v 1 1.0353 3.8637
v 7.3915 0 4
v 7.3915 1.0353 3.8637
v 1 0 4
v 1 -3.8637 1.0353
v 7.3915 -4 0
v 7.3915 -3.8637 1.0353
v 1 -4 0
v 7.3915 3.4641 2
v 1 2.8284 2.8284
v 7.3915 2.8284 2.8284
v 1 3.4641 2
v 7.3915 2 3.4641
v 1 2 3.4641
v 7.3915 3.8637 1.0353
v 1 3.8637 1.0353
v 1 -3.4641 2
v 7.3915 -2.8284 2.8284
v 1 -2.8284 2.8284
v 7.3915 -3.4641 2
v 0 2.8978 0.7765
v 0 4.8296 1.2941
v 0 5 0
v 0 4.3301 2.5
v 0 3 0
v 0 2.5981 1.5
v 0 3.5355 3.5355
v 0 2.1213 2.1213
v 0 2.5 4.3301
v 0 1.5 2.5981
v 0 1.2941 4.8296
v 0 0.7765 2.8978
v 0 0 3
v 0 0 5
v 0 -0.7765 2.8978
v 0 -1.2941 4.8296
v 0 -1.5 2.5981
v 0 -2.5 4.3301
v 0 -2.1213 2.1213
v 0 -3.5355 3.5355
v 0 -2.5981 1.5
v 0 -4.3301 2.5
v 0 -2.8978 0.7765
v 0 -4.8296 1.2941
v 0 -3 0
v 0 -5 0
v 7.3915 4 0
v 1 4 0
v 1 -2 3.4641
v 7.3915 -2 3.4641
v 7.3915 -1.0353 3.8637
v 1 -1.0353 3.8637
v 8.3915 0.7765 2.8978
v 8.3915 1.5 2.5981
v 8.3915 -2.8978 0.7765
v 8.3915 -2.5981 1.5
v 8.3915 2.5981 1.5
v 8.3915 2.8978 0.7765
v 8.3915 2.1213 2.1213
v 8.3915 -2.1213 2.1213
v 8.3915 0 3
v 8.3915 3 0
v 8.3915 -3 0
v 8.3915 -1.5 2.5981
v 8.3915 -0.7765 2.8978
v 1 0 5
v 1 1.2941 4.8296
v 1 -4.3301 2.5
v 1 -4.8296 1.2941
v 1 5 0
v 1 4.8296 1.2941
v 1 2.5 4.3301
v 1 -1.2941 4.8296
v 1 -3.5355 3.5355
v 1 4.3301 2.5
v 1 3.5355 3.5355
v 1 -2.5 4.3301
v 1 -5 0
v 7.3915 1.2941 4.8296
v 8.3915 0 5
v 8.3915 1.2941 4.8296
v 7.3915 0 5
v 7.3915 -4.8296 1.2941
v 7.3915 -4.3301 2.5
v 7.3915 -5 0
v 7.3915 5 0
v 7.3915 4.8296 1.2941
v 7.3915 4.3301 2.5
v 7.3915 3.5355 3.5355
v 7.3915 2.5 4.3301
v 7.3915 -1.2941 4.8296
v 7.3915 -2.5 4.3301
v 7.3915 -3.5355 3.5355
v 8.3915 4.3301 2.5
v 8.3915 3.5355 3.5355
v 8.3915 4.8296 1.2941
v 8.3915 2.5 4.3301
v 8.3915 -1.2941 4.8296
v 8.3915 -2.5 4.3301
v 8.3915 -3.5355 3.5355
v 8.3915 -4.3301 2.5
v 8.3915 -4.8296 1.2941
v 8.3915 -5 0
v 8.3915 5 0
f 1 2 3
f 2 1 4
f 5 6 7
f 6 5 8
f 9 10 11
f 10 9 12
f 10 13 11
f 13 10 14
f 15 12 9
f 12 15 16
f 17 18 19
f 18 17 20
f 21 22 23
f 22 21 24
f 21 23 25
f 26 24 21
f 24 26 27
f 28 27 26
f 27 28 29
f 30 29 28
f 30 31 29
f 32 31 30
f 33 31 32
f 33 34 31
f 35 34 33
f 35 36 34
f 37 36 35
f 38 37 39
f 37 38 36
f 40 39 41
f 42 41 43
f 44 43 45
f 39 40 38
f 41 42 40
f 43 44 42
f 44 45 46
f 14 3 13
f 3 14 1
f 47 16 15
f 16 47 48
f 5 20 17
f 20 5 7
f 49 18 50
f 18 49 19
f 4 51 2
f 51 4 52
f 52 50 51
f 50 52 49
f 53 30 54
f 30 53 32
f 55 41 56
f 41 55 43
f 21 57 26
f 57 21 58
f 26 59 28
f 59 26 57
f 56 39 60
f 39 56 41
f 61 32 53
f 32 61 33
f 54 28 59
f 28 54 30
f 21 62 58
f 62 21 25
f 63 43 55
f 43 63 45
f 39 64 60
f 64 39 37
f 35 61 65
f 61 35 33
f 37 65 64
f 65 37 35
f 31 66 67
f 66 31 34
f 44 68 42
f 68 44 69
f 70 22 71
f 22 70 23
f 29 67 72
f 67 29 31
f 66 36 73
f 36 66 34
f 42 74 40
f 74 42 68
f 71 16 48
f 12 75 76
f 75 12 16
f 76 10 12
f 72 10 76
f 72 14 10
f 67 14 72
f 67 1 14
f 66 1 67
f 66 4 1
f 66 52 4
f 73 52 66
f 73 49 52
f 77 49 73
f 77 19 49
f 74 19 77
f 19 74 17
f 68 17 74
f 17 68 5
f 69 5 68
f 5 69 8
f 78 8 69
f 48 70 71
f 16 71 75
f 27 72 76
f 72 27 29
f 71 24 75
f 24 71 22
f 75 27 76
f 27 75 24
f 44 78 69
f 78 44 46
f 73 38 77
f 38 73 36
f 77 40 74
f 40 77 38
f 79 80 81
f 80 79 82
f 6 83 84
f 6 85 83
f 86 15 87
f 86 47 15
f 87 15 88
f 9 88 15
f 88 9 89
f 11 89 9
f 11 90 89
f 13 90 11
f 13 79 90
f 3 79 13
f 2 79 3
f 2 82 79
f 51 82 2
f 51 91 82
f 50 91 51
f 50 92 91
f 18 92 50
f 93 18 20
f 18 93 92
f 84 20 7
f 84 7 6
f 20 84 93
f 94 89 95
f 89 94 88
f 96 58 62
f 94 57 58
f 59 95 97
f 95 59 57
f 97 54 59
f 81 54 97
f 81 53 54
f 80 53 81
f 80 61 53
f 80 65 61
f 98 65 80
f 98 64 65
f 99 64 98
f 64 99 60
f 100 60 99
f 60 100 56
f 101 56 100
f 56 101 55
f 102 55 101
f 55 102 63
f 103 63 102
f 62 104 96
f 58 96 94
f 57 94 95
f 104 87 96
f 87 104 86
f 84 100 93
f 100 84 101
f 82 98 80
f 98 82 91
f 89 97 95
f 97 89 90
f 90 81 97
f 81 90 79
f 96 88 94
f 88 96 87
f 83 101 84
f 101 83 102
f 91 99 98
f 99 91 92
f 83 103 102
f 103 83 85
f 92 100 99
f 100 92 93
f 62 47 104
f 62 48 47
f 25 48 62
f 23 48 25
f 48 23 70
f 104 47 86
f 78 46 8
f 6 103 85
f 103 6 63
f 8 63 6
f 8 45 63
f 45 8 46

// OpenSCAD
// file: ../build_environments.scad
// build_environments.scad: modules to build level sections
//

module pool(diameter=10.0, wall_height=2.0, step_width=3.0, connections=[])
{
    difference() {
        union() {
        difference() {
            cylinder(h=0.5,r1=diameter+step_width,r2=diameter+step_width,$fn=48);
            translate([0,0,-0.1])
                cylinder(h=0.7,r1=diameter,r2=diameter,$fn=48);
        }
        difference() {
            cylinder(h=wall_height,r1=diameter+step_width+1.0,r2=diameter+step_width+1.0,$fn=48);
            translate([0,0,-0.1])
                cylinder(h=wall_height+0.2,r1=diameter+step_width,r2=diameter+step_width,$fn=48);
        }
        }
    
        for (c = connections)
        {
            rotate([0,90,0]) {
                angle = atan2(c[1],c[0]);
                rotate([-angle,0,0]) {
                    cylinder(h=diameter+5.0,r1=c[2],r2=c[2],$fn=48);
                }
            }
        }
    }
}

module straight(length=10.0, width=2.0, dy1=0.0, dy2=0.0, dz=0.0)
{
    dims = [0, 0, 0, 0, 0, (dz/length)];
    matrix = [
        [ 1, dims[0], dims[1], 0 ],
        [ dims[2], 1, dims[4], 0 ],
        [ dims[5], dims[3], 1, 0 ],
        [ 0, 0, 0, 1 ]
    ];
    multmatrix(matrix)
    difference() {
        translate([dy1,0,0])
        union() {
            rotate([0,90,0]) {
                difference() {
                    cylinder(h=(length-dy1-dy2),r1=width+1.0,r2=width+1.0,$fn=24);
                    translate([0,0,-0.1])
                        cylinder(h=(length-dy1-dy2+0.2),r1=width,r2=width,$fn=24);
                }
                difference() {
                    cylinder(h=1.0,r1=width+2.0,r2=width+2.0,$fn=24);
                    translate([0,0,-0.1])
                        cylinder(h=1.2,r1=width,r2=width,$fn=24);
                }
                translate([0,0,(length-dy1-dy2)-1.0]) {
                    difference() {
                        cylinder(h=1.0,r1=width+2.0,r2=width+2.0,$fn=24);
                        translate([0,0,-0.1])
                            cylinder(h=1.2,r1=width,r2=width,$fn=24);
                    }
                }
            }
        }
        translate([0,0,-(2*width+4.0)/2])
            cube([3*length,3*length,2*width+4.0],center=true);
    }
}

module curve(p0=[0,0], center=[0,0], dir=1, angle=0.0, width=2.0)
{
    radius = sqrt((p0[0]-center[0])*(p0[0]-center[0]) + (p0[1]-center[1])*(p0[1]-center[1]));
    if (dir == 0) {
        difference() {
            rotate([0,0,-90])
            difference() {
                rotate_extrude(angle = angle, convexity = 10, $fn=32)
                    translate([radius, 0, 0])
                        circle(r = width+1.0,$fn=24);
                rotate([0,0,-1.0])
                    rotate_extrude(angle = angle+2.0, convexity = 10, $fn=32)
                        translate([radius, 0, 0])
                            circle(r = width,$fn=24);
            }
            translate([0,0,-(2*width+4.0)/2])
                cube([5*radius,5*radius,2*width+4.0],center=true);
        }
    }
    else {
        difference() {
            rotate([0,0,90])
            difference() {
                rotate_extrude(angle = -angle, convexity = 10, $fn=32)
                    translate([radius, 0, 0])
                        circle(r = width+1.0,$fn=24);
                rotate([0,0,1.0])
                    rotate_extrude(angle = -angle-2.0, convexity = 10, $fn=32)
                        translate([radius, 0, 0])
                            circle(r = width,$fn=24);
            }
            translate([0,0,-(2*width+4.0)/2])
                cube([5*radius,5*radius,2*width+4.0],center=true);
        }
    }

}

// test pool
//pool(diameter=12.0000, wall_height=3.0000, step_width=3.0000, connections=[[0.0000,-26.0000,2.0000], [23.6074,0.0000,2.0000]]);

// test straight, slope
//straight(length=26.0000, width=2.0000, dy1=11.8322, dy2=6.7082, dz=0.0000);
//straight(length=29.1549, width=12.0000, dy1=0.0000, dy2=0.0000, dz=-15.0000);

// test curve
//curve(p0=[23.6074, 0.0000], center=[23.6074, 5.0000], dir=0, angle=60.1011, width=2.0000);
//curve(p0=[33.6426, 12.4219], center=[37.9771, 9.9295], dir=1, angle=120.4627, width=2.0000);
// main file
use <../build_environments.scad>;
straight(length=8.3915, width=3.0000, dy1=0.0000, dy2=0.0000, dz=0.0000);
